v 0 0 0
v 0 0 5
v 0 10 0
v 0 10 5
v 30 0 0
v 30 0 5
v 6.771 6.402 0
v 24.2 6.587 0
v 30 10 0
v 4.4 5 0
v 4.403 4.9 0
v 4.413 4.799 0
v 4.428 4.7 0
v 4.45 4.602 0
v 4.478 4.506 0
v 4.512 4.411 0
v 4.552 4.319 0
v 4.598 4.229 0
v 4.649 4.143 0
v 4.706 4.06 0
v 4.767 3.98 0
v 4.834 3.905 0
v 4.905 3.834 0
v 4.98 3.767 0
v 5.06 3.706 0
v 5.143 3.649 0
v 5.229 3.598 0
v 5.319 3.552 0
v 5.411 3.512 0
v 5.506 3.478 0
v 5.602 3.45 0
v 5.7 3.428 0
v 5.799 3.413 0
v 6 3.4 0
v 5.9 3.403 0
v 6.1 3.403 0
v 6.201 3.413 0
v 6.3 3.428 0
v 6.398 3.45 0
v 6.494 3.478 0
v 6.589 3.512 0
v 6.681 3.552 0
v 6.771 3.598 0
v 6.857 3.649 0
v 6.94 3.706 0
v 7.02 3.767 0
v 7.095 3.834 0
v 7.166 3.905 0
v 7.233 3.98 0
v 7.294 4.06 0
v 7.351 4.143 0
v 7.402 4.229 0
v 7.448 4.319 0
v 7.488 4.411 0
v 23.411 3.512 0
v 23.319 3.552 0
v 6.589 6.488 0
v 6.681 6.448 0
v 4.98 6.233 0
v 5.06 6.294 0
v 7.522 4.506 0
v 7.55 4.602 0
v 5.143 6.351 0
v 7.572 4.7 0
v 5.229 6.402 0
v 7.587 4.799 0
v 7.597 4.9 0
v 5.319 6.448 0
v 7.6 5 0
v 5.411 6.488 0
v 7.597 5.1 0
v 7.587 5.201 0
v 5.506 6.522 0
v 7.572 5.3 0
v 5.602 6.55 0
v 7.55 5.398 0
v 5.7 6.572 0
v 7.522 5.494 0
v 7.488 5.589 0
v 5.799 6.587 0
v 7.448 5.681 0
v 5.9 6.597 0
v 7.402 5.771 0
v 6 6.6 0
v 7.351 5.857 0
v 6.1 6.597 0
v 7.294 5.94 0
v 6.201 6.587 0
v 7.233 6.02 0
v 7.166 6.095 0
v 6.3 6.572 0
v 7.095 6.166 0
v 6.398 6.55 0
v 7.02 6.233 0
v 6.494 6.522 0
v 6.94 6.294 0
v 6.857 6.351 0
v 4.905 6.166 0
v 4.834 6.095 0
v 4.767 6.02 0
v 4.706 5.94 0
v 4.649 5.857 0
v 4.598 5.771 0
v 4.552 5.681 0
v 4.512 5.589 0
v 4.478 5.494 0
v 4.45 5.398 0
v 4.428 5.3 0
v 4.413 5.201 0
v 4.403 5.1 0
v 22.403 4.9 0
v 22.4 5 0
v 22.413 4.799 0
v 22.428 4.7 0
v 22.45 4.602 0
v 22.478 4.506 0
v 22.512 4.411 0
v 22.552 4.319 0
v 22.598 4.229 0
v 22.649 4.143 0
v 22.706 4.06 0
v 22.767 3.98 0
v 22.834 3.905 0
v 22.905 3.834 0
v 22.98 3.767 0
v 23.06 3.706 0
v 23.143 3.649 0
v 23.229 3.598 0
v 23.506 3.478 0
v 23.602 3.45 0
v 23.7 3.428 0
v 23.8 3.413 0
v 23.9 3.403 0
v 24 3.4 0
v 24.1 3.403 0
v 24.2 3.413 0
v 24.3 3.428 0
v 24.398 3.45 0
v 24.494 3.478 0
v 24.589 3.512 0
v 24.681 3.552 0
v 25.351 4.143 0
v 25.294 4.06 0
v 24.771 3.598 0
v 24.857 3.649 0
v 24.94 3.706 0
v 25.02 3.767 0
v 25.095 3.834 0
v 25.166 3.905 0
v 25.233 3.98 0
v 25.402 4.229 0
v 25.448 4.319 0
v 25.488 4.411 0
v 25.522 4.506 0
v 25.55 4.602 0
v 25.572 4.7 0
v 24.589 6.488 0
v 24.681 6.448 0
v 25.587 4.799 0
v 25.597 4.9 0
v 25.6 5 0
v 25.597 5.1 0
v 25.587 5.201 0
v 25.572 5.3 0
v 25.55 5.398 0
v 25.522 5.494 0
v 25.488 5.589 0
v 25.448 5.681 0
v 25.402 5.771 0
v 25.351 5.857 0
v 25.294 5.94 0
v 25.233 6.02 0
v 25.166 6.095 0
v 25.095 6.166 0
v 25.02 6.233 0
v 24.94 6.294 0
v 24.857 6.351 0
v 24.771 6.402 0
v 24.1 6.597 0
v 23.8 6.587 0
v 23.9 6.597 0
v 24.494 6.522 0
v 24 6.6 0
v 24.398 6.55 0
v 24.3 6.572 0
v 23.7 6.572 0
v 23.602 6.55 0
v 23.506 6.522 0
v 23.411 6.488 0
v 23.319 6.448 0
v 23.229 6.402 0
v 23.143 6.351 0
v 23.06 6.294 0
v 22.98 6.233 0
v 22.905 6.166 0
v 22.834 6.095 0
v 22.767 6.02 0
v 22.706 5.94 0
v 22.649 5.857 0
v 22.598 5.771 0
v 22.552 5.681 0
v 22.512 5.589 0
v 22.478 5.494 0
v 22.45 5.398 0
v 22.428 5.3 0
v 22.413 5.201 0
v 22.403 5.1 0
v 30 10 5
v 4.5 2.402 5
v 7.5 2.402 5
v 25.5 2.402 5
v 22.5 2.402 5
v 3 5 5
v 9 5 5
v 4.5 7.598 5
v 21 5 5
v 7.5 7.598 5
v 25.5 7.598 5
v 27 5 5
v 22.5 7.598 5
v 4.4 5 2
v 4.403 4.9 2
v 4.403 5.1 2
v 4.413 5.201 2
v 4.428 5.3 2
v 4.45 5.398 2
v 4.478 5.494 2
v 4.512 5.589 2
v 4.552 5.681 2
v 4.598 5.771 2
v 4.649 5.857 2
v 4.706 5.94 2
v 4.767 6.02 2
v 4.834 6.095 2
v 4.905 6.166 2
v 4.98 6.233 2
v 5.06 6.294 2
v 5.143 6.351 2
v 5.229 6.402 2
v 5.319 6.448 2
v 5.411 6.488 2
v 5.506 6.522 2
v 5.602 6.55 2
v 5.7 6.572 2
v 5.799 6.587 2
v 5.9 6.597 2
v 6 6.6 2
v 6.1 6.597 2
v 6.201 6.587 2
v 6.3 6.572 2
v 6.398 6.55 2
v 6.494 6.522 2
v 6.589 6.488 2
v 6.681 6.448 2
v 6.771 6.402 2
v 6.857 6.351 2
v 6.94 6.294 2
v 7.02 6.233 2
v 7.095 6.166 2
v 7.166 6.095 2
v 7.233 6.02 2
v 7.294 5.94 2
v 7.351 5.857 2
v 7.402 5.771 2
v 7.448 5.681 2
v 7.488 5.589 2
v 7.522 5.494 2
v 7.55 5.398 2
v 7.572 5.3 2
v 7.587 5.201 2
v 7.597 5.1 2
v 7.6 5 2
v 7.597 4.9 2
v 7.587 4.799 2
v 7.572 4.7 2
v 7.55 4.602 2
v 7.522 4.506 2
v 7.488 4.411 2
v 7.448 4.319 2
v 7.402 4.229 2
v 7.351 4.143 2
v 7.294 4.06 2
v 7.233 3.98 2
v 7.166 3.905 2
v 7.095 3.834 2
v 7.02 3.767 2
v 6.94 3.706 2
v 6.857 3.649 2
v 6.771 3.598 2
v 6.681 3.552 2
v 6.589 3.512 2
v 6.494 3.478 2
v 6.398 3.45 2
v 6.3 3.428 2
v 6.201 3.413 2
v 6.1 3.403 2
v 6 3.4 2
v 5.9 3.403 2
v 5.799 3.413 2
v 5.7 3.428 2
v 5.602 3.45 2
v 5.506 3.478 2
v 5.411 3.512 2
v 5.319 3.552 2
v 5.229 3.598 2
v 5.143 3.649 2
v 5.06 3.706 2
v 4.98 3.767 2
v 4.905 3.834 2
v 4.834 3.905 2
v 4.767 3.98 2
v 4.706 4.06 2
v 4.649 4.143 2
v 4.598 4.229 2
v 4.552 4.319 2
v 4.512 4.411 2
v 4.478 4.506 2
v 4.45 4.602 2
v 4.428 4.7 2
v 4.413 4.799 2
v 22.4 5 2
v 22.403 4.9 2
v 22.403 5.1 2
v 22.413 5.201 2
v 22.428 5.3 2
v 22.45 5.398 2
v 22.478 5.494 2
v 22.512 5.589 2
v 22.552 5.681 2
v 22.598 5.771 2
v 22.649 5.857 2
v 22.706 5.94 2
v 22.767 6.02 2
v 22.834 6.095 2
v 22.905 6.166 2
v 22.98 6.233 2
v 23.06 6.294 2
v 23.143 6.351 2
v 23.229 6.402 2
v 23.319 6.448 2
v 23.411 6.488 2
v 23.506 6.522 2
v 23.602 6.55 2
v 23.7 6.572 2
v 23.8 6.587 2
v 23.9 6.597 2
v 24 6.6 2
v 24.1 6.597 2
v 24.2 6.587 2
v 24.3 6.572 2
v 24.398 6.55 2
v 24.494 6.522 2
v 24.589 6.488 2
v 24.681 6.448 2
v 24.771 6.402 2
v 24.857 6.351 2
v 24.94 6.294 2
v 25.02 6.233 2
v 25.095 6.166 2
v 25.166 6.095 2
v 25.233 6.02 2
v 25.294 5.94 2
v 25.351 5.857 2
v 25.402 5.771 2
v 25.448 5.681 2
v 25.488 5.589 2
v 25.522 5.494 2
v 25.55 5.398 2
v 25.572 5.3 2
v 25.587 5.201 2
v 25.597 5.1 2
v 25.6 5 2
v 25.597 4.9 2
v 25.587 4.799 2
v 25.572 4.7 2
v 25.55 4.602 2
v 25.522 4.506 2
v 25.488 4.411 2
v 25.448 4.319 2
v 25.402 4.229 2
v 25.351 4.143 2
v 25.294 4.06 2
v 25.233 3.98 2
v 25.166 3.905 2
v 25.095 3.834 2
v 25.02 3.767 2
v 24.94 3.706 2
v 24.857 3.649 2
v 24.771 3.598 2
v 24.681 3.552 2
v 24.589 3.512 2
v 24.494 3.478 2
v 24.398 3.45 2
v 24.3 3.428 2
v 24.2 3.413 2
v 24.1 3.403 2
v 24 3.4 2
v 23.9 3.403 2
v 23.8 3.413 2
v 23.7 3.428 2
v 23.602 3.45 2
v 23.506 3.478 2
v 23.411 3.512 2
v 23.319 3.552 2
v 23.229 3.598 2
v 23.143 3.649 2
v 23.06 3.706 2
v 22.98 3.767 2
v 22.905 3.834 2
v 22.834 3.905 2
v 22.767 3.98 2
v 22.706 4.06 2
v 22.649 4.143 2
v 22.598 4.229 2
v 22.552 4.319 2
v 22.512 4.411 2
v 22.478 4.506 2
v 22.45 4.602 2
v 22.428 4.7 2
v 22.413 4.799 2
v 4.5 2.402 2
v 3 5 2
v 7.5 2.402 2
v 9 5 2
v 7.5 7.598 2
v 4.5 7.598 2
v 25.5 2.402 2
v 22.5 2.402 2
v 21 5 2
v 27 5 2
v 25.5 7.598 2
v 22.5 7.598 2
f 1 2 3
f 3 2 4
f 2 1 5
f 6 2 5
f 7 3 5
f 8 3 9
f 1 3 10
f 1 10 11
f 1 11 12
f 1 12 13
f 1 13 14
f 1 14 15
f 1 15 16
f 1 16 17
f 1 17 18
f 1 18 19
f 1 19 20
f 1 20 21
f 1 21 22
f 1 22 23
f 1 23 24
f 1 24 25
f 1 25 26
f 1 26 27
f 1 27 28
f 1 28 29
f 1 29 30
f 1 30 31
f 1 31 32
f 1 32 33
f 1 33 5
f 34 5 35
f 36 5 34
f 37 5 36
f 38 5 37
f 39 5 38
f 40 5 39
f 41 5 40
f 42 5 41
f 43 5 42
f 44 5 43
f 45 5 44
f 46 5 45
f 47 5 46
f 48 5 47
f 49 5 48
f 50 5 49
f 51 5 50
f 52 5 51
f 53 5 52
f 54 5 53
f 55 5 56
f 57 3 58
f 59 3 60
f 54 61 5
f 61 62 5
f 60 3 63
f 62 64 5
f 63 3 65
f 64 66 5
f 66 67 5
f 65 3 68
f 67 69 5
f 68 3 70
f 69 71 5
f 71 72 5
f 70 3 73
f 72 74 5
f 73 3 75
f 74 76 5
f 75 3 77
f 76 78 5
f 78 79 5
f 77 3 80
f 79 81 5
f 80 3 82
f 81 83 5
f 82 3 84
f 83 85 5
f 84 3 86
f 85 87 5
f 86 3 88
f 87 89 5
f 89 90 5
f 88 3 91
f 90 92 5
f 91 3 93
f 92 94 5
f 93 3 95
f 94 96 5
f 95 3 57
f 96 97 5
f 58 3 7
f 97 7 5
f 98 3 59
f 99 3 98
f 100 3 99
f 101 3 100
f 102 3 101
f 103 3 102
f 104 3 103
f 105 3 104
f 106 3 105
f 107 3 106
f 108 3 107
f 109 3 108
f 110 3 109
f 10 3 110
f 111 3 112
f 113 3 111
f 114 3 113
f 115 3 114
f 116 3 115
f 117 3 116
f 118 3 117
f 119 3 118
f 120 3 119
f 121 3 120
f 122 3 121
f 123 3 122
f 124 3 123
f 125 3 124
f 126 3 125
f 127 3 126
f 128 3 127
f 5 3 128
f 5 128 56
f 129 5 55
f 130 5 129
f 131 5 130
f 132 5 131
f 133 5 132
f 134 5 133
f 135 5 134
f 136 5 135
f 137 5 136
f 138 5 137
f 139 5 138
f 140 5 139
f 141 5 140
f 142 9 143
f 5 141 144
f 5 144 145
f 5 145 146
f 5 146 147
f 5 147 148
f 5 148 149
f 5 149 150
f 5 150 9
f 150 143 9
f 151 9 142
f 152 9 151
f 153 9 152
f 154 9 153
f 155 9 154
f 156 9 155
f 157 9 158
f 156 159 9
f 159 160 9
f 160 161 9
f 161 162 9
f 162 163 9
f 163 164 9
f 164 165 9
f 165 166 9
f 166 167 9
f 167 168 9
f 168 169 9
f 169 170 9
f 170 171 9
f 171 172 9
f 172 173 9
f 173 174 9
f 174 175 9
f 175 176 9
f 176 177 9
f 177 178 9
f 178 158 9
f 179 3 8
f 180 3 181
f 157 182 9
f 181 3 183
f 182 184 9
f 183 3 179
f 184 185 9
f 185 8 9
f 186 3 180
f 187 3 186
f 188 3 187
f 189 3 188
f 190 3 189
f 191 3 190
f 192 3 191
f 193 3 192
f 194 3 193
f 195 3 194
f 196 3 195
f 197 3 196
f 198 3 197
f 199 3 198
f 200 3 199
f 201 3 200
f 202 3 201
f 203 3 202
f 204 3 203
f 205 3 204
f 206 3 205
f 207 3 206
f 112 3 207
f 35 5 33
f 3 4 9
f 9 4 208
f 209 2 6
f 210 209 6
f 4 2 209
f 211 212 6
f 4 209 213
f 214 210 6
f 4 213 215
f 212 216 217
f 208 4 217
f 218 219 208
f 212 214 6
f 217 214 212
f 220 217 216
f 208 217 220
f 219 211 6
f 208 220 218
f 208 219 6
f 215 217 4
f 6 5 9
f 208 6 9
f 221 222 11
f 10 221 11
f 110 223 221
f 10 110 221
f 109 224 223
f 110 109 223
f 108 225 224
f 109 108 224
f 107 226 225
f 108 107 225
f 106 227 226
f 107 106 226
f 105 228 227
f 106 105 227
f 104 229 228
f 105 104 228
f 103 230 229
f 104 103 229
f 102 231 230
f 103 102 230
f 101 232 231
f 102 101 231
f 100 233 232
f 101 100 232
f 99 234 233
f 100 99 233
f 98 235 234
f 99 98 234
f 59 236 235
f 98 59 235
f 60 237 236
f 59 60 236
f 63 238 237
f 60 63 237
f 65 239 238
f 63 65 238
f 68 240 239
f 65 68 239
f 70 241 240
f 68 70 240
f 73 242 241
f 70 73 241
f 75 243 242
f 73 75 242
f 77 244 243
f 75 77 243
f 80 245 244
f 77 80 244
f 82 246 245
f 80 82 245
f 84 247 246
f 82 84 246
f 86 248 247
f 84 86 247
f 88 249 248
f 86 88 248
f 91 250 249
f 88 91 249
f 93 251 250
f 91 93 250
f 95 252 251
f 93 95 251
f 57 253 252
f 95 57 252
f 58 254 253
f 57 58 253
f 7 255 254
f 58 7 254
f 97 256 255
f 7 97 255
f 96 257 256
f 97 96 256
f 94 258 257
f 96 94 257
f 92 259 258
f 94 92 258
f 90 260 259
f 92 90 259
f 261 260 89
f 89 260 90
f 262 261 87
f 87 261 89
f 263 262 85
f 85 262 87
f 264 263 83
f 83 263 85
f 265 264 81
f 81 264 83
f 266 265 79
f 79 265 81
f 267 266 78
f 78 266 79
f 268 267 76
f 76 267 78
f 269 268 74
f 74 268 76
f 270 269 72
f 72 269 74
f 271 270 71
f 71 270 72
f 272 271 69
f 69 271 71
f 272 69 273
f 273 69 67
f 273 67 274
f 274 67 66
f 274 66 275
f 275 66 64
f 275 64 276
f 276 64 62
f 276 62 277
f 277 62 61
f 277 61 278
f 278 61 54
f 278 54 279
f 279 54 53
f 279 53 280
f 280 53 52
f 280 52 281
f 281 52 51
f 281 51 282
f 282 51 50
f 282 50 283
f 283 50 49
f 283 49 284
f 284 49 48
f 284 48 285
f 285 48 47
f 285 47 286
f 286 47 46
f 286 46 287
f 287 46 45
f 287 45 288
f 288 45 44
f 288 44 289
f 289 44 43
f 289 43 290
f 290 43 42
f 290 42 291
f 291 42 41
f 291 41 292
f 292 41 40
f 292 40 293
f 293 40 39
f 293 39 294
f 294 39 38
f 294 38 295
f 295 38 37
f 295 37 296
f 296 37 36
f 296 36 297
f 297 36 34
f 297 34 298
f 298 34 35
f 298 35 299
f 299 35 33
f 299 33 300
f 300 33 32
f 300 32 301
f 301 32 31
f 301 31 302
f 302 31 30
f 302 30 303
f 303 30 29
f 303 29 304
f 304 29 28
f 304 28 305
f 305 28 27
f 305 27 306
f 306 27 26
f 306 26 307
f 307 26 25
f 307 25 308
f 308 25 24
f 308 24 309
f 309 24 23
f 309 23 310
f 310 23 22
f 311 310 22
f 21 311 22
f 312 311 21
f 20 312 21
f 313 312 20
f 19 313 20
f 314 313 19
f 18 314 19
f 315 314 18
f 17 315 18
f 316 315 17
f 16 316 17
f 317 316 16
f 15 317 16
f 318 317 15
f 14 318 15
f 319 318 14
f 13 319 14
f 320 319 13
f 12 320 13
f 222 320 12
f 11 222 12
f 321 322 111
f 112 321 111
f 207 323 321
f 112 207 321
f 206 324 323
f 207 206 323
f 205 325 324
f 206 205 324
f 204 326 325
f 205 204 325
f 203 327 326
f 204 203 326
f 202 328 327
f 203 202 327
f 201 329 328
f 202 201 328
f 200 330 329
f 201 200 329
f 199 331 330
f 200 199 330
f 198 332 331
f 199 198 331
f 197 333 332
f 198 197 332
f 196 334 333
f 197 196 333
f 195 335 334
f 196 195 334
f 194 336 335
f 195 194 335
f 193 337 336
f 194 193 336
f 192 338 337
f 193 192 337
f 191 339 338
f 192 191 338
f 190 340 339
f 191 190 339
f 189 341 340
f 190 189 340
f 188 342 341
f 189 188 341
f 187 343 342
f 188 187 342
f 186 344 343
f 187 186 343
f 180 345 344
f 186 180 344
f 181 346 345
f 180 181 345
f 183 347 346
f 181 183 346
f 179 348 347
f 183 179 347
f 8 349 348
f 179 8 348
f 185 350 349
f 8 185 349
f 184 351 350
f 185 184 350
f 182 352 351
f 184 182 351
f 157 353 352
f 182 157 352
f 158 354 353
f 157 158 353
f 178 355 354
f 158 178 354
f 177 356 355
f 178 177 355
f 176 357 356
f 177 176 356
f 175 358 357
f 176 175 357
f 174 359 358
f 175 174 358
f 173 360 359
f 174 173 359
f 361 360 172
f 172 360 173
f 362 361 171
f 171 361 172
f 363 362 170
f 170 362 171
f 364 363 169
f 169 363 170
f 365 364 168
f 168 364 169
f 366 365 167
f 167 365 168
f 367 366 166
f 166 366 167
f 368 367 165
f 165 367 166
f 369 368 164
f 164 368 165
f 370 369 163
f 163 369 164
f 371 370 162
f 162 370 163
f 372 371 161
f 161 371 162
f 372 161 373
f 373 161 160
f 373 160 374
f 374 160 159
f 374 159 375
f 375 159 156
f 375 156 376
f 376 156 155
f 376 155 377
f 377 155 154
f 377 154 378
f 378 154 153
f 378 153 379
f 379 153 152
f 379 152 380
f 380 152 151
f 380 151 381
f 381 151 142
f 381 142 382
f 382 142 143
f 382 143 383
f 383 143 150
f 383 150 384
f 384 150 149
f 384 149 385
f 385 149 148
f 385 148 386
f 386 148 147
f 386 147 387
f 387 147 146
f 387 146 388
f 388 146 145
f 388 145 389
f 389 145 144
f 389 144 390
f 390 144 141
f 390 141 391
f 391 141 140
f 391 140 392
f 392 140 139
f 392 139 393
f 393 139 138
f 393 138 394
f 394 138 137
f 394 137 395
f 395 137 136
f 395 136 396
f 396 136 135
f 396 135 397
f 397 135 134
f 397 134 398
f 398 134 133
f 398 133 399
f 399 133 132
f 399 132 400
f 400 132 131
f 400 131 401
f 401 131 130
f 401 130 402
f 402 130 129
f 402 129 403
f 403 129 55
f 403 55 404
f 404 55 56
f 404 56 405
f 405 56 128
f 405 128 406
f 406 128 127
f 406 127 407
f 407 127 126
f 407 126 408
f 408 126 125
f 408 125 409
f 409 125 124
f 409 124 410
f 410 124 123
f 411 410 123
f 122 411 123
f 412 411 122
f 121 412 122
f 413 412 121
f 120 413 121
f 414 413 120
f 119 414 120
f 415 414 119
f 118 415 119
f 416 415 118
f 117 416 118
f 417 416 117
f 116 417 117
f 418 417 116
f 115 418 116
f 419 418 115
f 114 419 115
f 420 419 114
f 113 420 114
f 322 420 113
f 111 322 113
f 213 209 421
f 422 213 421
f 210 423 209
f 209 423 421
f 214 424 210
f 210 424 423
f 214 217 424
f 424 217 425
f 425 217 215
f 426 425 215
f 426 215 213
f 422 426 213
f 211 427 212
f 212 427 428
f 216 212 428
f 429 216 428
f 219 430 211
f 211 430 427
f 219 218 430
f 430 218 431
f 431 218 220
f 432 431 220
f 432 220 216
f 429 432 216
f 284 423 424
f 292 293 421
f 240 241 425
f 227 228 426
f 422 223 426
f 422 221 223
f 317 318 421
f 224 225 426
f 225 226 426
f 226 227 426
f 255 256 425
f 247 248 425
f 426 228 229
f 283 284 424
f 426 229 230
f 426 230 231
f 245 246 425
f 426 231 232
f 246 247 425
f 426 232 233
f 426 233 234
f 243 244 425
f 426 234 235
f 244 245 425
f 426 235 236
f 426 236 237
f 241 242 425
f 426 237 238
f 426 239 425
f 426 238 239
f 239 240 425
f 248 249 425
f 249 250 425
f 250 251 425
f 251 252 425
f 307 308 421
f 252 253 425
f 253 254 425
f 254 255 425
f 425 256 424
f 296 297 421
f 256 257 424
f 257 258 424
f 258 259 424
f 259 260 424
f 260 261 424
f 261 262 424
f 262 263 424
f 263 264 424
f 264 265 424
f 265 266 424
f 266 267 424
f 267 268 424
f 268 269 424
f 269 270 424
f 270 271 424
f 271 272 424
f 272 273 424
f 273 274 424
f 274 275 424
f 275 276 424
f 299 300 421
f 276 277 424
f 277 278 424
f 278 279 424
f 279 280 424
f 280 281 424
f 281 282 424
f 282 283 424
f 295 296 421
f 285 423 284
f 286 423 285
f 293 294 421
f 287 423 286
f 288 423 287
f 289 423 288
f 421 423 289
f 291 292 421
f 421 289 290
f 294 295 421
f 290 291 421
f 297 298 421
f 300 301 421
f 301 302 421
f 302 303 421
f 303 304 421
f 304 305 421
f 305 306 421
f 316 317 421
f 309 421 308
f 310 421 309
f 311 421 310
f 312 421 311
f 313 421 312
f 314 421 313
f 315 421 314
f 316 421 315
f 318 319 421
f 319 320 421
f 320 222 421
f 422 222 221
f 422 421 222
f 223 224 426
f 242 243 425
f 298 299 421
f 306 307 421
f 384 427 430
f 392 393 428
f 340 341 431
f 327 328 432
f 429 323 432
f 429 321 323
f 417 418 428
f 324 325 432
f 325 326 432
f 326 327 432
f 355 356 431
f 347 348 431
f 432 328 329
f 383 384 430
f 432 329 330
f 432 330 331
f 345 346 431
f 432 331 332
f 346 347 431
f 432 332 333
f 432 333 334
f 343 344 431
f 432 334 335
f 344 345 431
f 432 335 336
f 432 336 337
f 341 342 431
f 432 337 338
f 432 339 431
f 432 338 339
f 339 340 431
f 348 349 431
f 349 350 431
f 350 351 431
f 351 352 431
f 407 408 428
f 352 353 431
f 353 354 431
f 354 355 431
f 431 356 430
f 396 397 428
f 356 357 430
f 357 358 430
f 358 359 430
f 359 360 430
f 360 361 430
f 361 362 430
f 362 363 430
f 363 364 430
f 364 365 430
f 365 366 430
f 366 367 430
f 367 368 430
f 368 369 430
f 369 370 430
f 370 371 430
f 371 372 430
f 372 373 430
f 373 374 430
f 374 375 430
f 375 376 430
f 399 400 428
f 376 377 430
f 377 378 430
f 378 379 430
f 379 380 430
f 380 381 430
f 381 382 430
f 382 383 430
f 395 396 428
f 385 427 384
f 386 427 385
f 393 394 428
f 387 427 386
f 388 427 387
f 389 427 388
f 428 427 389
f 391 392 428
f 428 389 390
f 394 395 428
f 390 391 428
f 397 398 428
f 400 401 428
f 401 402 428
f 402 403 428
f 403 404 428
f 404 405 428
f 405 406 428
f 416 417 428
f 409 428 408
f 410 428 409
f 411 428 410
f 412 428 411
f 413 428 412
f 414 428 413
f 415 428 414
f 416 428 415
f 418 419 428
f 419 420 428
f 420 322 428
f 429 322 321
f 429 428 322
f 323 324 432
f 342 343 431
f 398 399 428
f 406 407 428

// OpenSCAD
difference()
{
cube([30, 10, 5]);

for (x = [6, 24])
	{
		translate( [x, 5, 0])
			cylinder(r= 3.2/2, h=6, $fn=100);	

		translate( [x, 5, 2])
			cylinder(r= 6/2, h=6, $fn=6);
	}
}
